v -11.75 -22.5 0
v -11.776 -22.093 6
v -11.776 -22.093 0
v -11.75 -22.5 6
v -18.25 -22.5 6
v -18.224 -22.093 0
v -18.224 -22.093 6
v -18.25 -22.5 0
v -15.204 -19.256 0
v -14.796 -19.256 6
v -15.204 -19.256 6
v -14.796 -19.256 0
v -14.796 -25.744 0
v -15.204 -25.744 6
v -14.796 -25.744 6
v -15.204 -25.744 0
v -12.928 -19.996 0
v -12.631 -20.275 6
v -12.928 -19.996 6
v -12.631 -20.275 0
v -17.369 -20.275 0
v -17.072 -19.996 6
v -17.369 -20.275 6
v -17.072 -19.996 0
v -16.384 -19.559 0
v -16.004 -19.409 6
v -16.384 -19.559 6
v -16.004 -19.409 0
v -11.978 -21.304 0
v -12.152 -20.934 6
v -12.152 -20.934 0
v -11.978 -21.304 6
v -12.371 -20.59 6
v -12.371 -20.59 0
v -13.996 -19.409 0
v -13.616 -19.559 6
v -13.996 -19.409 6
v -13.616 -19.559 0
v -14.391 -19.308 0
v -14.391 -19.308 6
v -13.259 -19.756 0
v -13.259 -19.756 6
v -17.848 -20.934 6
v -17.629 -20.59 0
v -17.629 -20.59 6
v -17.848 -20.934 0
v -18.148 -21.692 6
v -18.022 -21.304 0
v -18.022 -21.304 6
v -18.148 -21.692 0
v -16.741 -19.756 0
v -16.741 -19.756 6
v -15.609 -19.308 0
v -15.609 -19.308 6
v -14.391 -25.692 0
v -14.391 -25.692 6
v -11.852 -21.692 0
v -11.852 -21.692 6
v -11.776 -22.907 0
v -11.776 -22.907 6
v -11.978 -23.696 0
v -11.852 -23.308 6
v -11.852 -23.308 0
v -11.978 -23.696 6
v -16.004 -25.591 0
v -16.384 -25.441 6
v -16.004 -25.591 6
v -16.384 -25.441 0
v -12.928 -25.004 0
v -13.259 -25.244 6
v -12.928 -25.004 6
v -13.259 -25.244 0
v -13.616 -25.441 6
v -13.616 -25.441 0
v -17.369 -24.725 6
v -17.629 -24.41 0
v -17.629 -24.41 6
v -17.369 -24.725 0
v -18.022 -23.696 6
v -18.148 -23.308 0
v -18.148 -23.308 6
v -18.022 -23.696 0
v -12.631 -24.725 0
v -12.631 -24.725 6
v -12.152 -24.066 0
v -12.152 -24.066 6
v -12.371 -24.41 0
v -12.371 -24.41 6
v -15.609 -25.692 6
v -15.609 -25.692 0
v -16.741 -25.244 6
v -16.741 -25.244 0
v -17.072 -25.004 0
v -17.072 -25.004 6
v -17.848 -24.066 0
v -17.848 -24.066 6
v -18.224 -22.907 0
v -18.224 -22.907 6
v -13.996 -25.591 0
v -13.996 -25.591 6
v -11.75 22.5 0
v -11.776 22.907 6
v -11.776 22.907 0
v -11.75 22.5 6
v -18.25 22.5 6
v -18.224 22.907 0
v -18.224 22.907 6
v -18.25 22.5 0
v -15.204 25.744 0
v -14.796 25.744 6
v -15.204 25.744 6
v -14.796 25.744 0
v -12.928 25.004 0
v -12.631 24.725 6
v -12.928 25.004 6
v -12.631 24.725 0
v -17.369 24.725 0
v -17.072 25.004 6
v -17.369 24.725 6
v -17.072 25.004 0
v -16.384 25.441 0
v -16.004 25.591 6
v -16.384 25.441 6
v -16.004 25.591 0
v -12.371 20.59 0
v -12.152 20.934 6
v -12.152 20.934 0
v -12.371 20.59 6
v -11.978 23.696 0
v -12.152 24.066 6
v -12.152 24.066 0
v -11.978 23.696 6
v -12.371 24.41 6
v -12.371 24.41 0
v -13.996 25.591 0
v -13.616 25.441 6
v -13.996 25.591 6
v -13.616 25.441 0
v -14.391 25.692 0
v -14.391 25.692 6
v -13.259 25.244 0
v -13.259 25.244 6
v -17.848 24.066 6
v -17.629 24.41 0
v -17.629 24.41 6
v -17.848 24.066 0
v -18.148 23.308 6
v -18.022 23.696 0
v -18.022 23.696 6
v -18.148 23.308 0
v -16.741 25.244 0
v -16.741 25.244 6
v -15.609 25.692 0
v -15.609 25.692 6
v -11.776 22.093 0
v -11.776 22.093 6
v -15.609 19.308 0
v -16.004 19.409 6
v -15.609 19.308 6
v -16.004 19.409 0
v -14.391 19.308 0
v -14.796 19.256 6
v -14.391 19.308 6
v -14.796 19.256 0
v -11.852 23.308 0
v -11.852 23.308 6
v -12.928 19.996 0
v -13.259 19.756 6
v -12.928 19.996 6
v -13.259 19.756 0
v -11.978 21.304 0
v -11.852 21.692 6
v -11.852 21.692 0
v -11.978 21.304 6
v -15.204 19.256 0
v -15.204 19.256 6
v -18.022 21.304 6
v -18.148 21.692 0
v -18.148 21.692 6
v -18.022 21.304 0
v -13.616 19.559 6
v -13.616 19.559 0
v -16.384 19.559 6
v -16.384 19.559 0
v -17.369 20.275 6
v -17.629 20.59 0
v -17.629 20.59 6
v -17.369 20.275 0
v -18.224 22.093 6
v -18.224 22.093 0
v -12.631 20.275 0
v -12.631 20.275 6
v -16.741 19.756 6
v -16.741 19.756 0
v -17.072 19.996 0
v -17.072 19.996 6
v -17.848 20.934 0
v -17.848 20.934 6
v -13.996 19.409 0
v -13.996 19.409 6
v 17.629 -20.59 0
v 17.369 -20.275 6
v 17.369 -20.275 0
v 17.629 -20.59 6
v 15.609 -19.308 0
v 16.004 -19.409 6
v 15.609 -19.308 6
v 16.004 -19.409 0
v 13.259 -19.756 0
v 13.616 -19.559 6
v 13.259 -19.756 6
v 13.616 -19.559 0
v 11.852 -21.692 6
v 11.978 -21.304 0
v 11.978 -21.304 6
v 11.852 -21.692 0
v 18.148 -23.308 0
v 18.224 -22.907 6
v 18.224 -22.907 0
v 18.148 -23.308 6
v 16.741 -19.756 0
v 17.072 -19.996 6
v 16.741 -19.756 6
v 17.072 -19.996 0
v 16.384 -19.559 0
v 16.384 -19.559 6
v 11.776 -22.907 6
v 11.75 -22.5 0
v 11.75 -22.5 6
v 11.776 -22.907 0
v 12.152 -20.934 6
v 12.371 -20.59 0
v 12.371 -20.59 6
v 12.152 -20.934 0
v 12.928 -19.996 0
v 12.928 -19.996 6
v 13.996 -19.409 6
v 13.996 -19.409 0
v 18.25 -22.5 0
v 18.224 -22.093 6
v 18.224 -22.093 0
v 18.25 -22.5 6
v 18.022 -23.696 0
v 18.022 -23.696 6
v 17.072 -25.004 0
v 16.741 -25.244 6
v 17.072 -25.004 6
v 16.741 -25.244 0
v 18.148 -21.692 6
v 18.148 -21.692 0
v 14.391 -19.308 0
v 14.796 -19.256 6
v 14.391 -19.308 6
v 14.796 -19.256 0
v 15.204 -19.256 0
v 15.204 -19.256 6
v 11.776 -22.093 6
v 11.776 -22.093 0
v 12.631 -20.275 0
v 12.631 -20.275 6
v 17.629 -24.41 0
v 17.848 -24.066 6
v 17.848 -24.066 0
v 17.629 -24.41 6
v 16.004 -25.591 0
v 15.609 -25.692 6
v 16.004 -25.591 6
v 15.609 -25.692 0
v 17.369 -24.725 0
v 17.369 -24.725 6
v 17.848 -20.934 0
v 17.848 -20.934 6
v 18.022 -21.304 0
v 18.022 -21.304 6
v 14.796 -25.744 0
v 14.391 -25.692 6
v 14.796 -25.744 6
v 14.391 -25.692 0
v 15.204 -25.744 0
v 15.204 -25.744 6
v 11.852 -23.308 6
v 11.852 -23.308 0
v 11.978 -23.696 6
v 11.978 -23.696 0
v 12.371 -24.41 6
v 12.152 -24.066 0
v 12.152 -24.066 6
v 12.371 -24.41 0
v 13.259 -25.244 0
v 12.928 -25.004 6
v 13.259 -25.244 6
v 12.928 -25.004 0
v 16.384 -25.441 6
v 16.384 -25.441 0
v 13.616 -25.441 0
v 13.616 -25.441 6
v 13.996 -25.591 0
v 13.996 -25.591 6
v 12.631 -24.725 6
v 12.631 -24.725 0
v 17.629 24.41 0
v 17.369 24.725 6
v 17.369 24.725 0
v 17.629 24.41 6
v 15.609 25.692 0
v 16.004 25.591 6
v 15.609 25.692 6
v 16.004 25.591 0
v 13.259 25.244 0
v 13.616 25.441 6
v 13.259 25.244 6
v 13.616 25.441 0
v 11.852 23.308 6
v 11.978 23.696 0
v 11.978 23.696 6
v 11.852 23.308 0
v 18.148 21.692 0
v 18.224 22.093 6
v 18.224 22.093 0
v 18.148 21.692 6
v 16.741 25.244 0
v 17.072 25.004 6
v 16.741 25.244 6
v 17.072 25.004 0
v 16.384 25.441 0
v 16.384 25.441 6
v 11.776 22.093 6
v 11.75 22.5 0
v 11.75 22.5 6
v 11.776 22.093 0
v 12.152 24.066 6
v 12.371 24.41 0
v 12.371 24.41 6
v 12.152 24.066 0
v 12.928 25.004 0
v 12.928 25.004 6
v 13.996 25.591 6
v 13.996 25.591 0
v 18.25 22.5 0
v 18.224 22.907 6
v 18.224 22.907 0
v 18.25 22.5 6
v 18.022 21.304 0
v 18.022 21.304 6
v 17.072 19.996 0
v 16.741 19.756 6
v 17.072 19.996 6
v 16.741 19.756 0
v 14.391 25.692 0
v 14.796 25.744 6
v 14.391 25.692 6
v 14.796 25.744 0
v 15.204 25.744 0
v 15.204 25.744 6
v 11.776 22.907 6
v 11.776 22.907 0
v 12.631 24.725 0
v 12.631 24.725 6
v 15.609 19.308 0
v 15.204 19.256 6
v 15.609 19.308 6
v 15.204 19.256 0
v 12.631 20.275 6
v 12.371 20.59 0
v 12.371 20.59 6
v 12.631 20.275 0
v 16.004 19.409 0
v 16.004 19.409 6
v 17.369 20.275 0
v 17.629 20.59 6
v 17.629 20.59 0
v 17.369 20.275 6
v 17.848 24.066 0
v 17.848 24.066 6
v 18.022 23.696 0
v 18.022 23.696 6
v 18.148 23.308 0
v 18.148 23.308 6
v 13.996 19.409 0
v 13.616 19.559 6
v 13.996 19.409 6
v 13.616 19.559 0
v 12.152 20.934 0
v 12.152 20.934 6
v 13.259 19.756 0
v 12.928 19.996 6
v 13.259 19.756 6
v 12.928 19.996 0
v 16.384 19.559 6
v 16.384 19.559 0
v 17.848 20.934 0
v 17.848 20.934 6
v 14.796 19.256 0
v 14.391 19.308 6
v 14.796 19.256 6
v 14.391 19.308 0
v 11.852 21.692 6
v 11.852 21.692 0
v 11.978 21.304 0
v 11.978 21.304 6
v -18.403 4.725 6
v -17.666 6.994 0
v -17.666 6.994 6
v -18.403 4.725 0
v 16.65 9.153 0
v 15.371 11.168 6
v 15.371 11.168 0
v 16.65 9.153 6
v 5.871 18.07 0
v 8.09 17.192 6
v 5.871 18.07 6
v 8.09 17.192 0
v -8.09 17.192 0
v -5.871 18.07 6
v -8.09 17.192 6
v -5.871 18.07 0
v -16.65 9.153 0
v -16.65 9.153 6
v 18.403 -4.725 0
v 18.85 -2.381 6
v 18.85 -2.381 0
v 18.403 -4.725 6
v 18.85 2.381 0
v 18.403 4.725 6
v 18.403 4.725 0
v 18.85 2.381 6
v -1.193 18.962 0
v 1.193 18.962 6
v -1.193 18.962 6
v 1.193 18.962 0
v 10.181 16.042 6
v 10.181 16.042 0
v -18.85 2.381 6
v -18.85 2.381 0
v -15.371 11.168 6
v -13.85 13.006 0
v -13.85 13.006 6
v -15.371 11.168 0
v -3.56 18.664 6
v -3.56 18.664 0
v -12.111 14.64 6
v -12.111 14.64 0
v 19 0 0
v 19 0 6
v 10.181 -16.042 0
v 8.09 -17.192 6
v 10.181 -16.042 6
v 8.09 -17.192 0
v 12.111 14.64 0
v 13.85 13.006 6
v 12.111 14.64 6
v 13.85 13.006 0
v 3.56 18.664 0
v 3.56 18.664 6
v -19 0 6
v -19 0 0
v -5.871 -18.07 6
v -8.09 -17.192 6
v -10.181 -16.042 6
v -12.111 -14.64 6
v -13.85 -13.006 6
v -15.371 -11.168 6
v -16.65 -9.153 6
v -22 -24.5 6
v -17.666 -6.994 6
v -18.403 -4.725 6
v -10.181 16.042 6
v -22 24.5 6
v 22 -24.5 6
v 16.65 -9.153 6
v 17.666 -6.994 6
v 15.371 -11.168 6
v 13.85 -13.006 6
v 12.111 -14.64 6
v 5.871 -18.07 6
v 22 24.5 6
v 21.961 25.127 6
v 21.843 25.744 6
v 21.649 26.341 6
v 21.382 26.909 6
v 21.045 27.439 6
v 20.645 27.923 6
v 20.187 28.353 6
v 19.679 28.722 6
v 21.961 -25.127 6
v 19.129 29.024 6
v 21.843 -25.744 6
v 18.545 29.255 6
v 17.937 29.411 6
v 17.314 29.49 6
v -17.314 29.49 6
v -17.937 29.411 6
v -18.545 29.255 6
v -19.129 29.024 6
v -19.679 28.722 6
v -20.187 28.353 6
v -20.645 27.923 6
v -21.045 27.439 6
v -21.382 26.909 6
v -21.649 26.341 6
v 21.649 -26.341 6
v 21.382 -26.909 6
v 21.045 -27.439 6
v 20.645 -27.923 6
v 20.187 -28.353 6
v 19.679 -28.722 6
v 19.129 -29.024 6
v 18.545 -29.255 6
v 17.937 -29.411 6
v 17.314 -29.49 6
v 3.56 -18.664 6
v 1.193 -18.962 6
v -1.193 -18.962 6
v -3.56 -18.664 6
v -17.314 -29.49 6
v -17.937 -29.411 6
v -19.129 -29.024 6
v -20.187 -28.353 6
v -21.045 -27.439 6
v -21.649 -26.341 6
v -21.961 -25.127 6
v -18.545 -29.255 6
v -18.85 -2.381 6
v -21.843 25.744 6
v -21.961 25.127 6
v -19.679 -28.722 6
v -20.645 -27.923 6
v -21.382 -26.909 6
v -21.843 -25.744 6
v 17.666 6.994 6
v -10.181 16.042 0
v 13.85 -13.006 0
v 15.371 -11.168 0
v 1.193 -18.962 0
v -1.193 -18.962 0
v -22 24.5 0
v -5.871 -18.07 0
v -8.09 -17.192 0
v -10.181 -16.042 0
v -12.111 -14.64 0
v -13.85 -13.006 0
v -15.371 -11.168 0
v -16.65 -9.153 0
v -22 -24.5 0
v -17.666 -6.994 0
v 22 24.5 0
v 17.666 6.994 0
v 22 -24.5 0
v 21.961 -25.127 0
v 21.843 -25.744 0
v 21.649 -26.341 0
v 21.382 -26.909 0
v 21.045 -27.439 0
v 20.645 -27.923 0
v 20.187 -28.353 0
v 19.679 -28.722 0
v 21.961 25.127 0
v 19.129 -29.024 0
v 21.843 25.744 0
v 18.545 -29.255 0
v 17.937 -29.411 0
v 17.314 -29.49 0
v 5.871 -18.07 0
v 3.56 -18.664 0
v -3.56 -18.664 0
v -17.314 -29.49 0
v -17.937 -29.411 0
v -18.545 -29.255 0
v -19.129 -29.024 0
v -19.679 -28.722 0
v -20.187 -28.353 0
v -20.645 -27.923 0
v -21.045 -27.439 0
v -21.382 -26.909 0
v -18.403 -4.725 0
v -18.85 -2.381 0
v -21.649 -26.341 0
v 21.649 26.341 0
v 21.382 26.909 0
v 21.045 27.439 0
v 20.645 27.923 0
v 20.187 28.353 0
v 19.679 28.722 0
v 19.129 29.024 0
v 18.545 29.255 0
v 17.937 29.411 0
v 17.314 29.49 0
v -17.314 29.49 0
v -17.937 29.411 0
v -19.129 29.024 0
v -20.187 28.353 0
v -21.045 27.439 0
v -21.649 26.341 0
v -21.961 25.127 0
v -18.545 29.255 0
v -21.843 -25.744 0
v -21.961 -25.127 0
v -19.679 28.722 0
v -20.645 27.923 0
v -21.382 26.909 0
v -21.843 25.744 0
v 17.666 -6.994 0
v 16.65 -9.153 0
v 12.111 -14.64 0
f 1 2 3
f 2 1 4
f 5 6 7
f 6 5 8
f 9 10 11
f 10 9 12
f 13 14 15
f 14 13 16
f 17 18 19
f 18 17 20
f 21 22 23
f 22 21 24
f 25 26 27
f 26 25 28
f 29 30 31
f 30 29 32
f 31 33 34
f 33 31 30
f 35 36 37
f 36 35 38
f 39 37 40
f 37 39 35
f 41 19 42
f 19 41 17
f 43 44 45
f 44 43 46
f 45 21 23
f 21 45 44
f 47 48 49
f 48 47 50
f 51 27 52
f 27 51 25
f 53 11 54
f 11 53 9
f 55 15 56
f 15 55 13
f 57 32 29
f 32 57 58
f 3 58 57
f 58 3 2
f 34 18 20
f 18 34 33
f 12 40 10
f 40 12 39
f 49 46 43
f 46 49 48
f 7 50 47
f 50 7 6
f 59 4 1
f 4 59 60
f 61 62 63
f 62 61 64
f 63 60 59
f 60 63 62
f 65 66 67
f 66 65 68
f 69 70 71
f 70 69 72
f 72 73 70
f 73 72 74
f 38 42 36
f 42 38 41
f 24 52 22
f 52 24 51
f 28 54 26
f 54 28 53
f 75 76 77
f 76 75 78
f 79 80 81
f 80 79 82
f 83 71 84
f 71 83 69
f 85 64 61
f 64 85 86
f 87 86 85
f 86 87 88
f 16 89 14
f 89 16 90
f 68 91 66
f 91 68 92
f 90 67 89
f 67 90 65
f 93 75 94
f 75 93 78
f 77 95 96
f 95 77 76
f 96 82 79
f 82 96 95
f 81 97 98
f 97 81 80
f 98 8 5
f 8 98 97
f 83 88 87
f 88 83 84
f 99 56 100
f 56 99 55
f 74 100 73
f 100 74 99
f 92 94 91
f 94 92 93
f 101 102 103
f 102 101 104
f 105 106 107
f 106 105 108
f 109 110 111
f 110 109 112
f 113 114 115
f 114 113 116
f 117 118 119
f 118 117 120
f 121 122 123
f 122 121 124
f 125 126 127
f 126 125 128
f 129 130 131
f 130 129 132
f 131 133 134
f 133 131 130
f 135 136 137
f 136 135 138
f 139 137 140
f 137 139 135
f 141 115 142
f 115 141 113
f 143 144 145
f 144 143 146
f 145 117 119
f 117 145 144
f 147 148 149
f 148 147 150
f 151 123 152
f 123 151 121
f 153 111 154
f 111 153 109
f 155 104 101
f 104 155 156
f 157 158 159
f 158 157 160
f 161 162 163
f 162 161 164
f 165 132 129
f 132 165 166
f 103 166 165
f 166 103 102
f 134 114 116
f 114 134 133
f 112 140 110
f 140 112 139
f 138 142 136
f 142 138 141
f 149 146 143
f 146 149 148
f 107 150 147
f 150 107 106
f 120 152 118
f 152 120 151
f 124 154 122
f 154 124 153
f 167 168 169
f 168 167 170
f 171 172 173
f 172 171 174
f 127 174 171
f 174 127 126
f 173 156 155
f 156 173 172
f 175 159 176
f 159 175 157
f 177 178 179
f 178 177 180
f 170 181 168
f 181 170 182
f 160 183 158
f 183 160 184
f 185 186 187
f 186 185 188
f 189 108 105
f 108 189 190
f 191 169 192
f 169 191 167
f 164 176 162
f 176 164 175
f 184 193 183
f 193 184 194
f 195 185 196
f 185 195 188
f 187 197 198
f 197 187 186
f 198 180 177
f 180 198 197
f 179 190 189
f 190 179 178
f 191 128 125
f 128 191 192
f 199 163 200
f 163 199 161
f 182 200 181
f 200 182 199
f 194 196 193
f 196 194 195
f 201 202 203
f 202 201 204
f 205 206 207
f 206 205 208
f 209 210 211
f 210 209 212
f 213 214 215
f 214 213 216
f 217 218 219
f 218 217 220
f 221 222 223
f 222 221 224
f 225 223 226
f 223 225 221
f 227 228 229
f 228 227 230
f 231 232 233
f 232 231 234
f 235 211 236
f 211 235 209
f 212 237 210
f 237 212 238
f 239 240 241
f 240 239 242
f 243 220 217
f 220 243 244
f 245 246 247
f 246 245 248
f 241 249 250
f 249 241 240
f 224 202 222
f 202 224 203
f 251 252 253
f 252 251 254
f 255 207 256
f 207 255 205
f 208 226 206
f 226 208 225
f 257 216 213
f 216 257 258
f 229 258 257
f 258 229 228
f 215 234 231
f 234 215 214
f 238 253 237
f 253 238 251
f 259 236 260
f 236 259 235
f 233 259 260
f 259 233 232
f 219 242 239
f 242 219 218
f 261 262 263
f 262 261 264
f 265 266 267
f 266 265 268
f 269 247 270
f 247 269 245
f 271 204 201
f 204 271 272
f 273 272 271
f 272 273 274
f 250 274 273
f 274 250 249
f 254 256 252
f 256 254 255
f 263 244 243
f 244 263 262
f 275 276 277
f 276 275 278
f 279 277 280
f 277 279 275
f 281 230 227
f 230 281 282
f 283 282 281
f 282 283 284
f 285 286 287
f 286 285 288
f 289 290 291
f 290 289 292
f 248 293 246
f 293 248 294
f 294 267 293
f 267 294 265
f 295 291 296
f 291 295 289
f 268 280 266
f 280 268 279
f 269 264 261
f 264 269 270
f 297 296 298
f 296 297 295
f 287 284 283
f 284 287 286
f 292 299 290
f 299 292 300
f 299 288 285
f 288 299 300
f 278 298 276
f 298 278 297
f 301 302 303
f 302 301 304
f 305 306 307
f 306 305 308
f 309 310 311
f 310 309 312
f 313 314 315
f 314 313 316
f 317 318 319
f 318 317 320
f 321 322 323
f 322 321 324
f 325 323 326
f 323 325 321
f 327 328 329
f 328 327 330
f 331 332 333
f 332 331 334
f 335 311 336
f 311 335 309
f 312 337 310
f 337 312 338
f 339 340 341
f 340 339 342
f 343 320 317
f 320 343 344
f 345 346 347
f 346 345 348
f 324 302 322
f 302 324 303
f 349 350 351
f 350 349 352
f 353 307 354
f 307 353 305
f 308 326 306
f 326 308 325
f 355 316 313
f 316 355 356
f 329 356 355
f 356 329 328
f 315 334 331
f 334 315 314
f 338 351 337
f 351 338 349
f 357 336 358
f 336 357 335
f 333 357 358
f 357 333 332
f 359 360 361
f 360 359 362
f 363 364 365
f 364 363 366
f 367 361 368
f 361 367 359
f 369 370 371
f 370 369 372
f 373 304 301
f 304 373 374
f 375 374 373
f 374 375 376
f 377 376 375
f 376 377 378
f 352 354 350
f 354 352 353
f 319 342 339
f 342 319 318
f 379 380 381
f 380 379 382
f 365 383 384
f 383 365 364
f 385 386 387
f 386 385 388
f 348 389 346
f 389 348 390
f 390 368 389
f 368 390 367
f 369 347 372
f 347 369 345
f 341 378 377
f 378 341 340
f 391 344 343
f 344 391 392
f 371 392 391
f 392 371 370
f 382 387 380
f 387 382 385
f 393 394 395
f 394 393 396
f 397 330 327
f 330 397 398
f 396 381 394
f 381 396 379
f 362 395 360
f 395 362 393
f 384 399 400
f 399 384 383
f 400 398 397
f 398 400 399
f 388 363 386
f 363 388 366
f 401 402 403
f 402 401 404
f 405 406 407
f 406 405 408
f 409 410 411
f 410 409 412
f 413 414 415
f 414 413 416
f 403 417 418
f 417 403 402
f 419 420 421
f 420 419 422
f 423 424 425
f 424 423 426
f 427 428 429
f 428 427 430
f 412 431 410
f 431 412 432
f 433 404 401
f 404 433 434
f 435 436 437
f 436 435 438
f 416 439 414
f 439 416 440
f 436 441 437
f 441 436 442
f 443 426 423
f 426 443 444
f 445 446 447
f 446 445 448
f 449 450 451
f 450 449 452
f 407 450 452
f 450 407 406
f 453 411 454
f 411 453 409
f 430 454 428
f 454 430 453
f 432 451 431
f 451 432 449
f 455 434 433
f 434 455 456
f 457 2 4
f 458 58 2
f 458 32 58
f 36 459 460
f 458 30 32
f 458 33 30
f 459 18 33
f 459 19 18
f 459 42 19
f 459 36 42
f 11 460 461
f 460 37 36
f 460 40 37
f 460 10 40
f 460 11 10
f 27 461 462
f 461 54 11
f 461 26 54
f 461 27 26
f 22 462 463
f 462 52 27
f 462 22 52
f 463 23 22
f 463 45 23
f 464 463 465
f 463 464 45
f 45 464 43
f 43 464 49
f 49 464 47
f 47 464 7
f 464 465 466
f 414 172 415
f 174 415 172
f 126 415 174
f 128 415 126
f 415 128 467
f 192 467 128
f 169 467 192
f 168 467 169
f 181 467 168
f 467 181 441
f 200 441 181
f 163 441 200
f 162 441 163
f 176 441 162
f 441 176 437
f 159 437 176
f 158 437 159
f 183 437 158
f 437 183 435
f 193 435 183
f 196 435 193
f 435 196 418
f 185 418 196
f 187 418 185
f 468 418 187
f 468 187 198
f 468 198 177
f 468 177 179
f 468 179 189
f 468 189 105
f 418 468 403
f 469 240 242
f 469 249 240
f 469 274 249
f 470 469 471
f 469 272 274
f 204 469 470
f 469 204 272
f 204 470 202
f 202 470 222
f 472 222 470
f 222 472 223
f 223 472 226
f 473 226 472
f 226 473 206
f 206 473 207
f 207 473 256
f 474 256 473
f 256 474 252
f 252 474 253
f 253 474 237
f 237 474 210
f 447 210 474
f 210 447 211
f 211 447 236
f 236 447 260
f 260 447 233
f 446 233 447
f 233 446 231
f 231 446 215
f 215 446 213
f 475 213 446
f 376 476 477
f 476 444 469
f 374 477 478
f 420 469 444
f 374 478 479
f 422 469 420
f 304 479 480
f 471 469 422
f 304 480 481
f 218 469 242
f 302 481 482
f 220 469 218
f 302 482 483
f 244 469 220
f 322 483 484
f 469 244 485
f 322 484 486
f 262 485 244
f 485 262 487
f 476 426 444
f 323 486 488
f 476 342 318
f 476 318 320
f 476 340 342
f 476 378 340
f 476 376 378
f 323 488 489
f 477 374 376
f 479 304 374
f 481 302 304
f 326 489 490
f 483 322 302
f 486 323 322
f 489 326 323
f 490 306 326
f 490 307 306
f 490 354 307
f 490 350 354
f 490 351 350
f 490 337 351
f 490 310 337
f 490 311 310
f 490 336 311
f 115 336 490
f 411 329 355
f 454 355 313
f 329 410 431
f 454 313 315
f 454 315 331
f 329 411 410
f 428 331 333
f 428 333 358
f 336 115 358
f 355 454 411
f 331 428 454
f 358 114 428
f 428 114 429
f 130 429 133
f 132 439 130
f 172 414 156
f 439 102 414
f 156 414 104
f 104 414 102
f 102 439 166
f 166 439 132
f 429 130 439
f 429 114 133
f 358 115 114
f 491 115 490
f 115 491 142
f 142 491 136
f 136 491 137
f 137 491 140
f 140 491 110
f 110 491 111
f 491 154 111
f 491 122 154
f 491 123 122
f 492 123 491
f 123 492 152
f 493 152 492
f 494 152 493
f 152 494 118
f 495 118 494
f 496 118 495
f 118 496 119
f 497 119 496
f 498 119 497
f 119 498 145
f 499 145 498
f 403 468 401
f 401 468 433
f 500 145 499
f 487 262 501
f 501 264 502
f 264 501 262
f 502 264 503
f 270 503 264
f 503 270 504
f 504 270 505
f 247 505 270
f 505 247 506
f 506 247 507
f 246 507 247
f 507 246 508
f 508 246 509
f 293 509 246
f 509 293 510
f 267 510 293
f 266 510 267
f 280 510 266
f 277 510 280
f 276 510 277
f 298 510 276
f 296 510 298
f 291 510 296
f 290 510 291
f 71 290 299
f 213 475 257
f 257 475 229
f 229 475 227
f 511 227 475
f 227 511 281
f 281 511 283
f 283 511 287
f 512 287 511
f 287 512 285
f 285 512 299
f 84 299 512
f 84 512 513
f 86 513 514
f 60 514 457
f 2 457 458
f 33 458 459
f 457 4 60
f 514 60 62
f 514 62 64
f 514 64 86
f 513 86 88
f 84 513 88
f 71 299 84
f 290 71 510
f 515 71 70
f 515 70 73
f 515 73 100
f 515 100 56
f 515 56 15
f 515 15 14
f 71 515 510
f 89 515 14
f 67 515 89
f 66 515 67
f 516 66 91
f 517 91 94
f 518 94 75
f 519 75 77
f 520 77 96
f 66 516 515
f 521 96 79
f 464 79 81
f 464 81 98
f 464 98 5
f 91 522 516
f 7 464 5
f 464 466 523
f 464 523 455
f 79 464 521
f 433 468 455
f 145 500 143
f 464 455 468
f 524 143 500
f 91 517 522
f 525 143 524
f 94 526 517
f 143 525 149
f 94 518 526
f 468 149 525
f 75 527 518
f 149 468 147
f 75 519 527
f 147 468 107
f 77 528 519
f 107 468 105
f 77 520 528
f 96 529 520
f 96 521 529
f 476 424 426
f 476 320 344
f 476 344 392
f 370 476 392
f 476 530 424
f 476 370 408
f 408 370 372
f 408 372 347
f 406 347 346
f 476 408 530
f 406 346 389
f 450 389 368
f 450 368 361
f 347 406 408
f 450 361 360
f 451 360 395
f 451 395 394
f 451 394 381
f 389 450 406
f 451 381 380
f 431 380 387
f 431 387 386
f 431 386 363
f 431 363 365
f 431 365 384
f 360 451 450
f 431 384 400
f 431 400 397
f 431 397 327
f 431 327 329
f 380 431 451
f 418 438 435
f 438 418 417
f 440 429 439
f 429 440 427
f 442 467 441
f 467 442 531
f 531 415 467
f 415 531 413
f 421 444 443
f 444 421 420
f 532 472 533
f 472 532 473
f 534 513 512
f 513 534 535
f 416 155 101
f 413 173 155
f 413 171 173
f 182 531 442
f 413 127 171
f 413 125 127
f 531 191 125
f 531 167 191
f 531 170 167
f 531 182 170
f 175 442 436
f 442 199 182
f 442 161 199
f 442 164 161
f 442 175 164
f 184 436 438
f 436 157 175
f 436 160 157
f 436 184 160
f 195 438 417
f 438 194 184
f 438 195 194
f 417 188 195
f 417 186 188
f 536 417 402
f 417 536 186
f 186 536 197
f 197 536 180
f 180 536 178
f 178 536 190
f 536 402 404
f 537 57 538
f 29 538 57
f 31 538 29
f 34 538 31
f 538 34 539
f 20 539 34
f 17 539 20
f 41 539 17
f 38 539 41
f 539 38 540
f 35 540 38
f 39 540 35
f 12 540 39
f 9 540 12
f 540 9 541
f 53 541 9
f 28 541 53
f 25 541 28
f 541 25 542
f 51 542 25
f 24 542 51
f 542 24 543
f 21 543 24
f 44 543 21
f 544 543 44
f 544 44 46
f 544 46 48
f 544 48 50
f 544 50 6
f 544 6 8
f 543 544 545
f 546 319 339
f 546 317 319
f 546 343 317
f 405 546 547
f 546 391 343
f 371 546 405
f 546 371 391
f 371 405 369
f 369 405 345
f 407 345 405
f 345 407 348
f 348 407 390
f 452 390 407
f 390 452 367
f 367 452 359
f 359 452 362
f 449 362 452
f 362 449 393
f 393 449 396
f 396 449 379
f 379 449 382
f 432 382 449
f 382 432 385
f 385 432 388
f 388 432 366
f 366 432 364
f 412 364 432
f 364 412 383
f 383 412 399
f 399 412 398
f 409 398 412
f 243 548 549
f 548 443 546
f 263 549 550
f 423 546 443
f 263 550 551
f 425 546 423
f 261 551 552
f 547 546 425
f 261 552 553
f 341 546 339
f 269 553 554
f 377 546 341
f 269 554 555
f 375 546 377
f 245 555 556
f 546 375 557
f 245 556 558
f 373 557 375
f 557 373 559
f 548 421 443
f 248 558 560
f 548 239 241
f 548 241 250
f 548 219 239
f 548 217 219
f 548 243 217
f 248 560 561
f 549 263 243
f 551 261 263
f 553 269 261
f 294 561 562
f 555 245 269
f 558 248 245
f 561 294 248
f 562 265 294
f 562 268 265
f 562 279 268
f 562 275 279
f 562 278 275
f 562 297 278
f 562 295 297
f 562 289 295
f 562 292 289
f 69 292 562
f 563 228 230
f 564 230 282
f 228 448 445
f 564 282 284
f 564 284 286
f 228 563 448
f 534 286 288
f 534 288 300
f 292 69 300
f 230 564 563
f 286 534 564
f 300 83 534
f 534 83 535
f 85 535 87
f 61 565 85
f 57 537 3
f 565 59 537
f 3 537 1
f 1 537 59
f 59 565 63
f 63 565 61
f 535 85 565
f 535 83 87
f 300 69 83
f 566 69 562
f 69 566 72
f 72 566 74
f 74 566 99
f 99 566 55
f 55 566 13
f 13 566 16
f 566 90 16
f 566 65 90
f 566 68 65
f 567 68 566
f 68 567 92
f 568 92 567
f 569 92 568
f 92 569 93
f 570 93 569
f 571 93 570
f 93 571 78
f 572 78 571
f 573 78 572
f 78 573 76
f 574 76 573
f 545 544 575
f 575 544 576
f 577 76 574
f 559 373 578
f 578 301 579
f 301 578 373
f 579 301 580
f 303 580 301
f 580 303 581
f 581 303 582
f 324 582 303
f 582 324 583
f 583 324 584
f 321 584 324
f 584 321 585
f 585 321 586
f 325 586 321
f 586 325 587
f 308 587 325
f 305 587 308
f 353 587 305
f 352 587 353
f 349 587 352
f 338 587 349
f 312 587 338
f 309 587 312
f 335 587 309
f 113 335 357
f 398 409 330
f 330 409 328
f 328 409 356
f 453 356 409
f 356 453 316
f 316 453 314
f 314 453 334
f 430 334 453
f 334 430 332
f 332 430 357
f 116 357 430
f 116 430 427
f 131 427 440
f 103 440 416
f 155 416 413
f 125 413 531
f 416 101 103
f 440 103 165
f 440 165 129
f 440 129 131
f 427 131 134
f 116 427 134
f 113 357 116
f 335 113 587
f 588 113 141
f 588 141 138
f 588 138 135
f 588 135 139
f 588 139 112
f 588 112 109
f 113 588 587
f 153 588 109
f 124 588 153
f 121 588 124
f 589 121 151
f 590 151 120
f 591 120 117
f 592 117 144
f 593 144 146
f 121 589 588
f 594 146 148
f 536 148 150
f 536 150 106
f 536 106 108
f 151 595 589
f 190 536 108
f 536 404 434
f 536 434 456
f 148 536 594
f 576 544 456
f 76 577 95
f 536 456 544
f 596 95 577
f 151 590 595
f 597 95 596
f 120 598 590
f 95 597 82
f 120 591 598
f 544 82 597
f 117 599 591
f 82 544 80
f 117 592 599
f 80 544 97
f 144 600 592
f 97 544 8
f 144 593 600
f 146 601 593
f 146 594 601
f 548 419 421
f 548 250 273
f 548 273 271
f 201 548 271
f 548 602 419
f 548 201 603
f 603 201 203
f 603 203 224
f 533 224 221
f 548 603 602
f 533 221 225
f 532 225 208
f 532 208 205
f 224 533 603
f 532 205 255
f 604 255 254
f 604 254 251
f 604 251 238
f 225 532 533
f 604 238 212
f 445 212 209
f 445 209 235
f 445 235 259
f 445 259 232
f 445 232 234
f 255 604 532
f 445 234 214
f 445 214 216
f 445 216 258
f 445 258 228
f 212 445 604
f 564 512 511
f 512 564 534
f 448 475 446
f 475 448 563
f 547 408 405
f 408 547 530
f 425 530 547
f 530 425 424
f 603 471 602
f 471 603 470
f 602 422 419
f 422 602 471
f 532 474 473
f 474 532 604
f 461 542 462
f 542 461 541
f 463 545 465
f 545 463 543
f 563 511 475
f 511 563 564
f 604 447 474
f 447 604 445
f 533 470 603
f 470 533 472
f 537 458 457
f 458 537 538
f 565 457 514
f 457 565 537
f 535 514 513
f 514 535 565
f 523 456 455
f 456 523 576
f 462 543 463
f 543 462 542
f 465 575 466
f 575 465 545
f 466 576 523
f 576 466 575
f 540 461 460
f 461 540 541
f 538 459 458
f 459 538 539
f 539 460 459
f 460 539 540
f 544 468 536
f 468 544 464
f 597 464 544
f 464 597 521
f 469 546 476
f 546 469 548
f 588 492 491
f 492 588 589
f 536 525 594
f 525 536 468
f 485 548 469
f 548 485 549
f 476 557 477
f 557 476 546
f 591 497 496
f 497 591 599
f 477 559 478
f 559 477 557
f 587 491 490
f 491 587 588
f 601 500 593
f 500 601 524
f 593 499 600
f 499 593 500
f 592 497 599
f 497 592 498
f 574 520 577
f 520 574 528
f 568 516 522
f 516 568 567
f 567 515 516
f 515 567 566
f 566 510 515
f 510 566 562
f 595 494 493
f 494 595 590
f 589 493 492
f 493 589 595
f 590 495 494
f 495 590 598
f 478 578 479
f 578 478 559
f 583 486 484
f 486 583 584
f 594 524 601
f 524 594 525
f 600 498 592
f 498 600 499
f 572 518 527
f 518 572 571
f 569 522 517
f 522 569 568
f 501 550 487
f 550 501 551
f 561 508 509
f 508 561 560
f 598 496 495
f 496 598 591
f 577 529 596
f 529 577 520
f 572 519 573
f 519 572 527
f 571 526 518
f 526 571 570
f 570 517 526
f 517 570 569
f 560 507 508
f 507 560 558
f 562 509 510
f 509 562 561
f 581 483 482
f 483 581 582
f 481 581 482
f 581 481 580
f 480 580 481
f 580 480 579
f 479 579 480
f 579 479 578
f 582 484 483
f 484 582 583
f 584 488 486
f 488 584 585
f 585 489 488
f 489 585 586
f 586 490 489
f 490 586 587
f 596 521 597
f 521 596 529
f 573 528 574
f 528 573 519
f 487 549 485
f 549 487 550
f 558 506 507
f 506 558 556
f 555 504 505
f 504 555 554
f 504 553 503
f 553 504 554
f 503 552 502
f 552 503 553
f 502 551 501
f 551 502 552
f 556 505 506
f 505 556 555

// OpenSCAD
$fn = 50;


difference() {
	union() {
		hull() {
			translate(v = [-17.0000000000, 24.5000000000, 0]) {
				cylinder(h = 6, r = 5);
			}
			translate(v = [17.0000000000, 24.5000000000, 0]) {
				cylinder(h = 6, r = 5);
			}
			translate(v = [-17.0000000000, -24.5000000000, 0]) {
				cylinder(h = 6, r = 5);
			}
			translate(v = [17.0000000000, -24.5000000000, 0]) {
				cylinder(h = 6, r = 5);
			}
		}
	}
	union() {
		#translate(v = [-15.0000000000, -22.5000000000, -100.0000000000]) {
			cylinder(h = 200, r = 3.2500000000);
		}
		#translate(v = [-15.0000000000, 22.5000000000, -100.0000000000]) {
			cylinder(h = 200, r = 3.2500000000);
		}
		#translate(v = [15.0000000000, -22.5000000000, -100.0000000000]) {
			cylinder(h = 200, r = 3.2500000000);
		}
		#translate(v = [15.0000000000, 22.5000000000, -100.0000000000]) {
			cylinder(h = 200, r = 3.2500000000);
		}
		#cylinder(h = 6, r = 19.0000000000);
	}
}
